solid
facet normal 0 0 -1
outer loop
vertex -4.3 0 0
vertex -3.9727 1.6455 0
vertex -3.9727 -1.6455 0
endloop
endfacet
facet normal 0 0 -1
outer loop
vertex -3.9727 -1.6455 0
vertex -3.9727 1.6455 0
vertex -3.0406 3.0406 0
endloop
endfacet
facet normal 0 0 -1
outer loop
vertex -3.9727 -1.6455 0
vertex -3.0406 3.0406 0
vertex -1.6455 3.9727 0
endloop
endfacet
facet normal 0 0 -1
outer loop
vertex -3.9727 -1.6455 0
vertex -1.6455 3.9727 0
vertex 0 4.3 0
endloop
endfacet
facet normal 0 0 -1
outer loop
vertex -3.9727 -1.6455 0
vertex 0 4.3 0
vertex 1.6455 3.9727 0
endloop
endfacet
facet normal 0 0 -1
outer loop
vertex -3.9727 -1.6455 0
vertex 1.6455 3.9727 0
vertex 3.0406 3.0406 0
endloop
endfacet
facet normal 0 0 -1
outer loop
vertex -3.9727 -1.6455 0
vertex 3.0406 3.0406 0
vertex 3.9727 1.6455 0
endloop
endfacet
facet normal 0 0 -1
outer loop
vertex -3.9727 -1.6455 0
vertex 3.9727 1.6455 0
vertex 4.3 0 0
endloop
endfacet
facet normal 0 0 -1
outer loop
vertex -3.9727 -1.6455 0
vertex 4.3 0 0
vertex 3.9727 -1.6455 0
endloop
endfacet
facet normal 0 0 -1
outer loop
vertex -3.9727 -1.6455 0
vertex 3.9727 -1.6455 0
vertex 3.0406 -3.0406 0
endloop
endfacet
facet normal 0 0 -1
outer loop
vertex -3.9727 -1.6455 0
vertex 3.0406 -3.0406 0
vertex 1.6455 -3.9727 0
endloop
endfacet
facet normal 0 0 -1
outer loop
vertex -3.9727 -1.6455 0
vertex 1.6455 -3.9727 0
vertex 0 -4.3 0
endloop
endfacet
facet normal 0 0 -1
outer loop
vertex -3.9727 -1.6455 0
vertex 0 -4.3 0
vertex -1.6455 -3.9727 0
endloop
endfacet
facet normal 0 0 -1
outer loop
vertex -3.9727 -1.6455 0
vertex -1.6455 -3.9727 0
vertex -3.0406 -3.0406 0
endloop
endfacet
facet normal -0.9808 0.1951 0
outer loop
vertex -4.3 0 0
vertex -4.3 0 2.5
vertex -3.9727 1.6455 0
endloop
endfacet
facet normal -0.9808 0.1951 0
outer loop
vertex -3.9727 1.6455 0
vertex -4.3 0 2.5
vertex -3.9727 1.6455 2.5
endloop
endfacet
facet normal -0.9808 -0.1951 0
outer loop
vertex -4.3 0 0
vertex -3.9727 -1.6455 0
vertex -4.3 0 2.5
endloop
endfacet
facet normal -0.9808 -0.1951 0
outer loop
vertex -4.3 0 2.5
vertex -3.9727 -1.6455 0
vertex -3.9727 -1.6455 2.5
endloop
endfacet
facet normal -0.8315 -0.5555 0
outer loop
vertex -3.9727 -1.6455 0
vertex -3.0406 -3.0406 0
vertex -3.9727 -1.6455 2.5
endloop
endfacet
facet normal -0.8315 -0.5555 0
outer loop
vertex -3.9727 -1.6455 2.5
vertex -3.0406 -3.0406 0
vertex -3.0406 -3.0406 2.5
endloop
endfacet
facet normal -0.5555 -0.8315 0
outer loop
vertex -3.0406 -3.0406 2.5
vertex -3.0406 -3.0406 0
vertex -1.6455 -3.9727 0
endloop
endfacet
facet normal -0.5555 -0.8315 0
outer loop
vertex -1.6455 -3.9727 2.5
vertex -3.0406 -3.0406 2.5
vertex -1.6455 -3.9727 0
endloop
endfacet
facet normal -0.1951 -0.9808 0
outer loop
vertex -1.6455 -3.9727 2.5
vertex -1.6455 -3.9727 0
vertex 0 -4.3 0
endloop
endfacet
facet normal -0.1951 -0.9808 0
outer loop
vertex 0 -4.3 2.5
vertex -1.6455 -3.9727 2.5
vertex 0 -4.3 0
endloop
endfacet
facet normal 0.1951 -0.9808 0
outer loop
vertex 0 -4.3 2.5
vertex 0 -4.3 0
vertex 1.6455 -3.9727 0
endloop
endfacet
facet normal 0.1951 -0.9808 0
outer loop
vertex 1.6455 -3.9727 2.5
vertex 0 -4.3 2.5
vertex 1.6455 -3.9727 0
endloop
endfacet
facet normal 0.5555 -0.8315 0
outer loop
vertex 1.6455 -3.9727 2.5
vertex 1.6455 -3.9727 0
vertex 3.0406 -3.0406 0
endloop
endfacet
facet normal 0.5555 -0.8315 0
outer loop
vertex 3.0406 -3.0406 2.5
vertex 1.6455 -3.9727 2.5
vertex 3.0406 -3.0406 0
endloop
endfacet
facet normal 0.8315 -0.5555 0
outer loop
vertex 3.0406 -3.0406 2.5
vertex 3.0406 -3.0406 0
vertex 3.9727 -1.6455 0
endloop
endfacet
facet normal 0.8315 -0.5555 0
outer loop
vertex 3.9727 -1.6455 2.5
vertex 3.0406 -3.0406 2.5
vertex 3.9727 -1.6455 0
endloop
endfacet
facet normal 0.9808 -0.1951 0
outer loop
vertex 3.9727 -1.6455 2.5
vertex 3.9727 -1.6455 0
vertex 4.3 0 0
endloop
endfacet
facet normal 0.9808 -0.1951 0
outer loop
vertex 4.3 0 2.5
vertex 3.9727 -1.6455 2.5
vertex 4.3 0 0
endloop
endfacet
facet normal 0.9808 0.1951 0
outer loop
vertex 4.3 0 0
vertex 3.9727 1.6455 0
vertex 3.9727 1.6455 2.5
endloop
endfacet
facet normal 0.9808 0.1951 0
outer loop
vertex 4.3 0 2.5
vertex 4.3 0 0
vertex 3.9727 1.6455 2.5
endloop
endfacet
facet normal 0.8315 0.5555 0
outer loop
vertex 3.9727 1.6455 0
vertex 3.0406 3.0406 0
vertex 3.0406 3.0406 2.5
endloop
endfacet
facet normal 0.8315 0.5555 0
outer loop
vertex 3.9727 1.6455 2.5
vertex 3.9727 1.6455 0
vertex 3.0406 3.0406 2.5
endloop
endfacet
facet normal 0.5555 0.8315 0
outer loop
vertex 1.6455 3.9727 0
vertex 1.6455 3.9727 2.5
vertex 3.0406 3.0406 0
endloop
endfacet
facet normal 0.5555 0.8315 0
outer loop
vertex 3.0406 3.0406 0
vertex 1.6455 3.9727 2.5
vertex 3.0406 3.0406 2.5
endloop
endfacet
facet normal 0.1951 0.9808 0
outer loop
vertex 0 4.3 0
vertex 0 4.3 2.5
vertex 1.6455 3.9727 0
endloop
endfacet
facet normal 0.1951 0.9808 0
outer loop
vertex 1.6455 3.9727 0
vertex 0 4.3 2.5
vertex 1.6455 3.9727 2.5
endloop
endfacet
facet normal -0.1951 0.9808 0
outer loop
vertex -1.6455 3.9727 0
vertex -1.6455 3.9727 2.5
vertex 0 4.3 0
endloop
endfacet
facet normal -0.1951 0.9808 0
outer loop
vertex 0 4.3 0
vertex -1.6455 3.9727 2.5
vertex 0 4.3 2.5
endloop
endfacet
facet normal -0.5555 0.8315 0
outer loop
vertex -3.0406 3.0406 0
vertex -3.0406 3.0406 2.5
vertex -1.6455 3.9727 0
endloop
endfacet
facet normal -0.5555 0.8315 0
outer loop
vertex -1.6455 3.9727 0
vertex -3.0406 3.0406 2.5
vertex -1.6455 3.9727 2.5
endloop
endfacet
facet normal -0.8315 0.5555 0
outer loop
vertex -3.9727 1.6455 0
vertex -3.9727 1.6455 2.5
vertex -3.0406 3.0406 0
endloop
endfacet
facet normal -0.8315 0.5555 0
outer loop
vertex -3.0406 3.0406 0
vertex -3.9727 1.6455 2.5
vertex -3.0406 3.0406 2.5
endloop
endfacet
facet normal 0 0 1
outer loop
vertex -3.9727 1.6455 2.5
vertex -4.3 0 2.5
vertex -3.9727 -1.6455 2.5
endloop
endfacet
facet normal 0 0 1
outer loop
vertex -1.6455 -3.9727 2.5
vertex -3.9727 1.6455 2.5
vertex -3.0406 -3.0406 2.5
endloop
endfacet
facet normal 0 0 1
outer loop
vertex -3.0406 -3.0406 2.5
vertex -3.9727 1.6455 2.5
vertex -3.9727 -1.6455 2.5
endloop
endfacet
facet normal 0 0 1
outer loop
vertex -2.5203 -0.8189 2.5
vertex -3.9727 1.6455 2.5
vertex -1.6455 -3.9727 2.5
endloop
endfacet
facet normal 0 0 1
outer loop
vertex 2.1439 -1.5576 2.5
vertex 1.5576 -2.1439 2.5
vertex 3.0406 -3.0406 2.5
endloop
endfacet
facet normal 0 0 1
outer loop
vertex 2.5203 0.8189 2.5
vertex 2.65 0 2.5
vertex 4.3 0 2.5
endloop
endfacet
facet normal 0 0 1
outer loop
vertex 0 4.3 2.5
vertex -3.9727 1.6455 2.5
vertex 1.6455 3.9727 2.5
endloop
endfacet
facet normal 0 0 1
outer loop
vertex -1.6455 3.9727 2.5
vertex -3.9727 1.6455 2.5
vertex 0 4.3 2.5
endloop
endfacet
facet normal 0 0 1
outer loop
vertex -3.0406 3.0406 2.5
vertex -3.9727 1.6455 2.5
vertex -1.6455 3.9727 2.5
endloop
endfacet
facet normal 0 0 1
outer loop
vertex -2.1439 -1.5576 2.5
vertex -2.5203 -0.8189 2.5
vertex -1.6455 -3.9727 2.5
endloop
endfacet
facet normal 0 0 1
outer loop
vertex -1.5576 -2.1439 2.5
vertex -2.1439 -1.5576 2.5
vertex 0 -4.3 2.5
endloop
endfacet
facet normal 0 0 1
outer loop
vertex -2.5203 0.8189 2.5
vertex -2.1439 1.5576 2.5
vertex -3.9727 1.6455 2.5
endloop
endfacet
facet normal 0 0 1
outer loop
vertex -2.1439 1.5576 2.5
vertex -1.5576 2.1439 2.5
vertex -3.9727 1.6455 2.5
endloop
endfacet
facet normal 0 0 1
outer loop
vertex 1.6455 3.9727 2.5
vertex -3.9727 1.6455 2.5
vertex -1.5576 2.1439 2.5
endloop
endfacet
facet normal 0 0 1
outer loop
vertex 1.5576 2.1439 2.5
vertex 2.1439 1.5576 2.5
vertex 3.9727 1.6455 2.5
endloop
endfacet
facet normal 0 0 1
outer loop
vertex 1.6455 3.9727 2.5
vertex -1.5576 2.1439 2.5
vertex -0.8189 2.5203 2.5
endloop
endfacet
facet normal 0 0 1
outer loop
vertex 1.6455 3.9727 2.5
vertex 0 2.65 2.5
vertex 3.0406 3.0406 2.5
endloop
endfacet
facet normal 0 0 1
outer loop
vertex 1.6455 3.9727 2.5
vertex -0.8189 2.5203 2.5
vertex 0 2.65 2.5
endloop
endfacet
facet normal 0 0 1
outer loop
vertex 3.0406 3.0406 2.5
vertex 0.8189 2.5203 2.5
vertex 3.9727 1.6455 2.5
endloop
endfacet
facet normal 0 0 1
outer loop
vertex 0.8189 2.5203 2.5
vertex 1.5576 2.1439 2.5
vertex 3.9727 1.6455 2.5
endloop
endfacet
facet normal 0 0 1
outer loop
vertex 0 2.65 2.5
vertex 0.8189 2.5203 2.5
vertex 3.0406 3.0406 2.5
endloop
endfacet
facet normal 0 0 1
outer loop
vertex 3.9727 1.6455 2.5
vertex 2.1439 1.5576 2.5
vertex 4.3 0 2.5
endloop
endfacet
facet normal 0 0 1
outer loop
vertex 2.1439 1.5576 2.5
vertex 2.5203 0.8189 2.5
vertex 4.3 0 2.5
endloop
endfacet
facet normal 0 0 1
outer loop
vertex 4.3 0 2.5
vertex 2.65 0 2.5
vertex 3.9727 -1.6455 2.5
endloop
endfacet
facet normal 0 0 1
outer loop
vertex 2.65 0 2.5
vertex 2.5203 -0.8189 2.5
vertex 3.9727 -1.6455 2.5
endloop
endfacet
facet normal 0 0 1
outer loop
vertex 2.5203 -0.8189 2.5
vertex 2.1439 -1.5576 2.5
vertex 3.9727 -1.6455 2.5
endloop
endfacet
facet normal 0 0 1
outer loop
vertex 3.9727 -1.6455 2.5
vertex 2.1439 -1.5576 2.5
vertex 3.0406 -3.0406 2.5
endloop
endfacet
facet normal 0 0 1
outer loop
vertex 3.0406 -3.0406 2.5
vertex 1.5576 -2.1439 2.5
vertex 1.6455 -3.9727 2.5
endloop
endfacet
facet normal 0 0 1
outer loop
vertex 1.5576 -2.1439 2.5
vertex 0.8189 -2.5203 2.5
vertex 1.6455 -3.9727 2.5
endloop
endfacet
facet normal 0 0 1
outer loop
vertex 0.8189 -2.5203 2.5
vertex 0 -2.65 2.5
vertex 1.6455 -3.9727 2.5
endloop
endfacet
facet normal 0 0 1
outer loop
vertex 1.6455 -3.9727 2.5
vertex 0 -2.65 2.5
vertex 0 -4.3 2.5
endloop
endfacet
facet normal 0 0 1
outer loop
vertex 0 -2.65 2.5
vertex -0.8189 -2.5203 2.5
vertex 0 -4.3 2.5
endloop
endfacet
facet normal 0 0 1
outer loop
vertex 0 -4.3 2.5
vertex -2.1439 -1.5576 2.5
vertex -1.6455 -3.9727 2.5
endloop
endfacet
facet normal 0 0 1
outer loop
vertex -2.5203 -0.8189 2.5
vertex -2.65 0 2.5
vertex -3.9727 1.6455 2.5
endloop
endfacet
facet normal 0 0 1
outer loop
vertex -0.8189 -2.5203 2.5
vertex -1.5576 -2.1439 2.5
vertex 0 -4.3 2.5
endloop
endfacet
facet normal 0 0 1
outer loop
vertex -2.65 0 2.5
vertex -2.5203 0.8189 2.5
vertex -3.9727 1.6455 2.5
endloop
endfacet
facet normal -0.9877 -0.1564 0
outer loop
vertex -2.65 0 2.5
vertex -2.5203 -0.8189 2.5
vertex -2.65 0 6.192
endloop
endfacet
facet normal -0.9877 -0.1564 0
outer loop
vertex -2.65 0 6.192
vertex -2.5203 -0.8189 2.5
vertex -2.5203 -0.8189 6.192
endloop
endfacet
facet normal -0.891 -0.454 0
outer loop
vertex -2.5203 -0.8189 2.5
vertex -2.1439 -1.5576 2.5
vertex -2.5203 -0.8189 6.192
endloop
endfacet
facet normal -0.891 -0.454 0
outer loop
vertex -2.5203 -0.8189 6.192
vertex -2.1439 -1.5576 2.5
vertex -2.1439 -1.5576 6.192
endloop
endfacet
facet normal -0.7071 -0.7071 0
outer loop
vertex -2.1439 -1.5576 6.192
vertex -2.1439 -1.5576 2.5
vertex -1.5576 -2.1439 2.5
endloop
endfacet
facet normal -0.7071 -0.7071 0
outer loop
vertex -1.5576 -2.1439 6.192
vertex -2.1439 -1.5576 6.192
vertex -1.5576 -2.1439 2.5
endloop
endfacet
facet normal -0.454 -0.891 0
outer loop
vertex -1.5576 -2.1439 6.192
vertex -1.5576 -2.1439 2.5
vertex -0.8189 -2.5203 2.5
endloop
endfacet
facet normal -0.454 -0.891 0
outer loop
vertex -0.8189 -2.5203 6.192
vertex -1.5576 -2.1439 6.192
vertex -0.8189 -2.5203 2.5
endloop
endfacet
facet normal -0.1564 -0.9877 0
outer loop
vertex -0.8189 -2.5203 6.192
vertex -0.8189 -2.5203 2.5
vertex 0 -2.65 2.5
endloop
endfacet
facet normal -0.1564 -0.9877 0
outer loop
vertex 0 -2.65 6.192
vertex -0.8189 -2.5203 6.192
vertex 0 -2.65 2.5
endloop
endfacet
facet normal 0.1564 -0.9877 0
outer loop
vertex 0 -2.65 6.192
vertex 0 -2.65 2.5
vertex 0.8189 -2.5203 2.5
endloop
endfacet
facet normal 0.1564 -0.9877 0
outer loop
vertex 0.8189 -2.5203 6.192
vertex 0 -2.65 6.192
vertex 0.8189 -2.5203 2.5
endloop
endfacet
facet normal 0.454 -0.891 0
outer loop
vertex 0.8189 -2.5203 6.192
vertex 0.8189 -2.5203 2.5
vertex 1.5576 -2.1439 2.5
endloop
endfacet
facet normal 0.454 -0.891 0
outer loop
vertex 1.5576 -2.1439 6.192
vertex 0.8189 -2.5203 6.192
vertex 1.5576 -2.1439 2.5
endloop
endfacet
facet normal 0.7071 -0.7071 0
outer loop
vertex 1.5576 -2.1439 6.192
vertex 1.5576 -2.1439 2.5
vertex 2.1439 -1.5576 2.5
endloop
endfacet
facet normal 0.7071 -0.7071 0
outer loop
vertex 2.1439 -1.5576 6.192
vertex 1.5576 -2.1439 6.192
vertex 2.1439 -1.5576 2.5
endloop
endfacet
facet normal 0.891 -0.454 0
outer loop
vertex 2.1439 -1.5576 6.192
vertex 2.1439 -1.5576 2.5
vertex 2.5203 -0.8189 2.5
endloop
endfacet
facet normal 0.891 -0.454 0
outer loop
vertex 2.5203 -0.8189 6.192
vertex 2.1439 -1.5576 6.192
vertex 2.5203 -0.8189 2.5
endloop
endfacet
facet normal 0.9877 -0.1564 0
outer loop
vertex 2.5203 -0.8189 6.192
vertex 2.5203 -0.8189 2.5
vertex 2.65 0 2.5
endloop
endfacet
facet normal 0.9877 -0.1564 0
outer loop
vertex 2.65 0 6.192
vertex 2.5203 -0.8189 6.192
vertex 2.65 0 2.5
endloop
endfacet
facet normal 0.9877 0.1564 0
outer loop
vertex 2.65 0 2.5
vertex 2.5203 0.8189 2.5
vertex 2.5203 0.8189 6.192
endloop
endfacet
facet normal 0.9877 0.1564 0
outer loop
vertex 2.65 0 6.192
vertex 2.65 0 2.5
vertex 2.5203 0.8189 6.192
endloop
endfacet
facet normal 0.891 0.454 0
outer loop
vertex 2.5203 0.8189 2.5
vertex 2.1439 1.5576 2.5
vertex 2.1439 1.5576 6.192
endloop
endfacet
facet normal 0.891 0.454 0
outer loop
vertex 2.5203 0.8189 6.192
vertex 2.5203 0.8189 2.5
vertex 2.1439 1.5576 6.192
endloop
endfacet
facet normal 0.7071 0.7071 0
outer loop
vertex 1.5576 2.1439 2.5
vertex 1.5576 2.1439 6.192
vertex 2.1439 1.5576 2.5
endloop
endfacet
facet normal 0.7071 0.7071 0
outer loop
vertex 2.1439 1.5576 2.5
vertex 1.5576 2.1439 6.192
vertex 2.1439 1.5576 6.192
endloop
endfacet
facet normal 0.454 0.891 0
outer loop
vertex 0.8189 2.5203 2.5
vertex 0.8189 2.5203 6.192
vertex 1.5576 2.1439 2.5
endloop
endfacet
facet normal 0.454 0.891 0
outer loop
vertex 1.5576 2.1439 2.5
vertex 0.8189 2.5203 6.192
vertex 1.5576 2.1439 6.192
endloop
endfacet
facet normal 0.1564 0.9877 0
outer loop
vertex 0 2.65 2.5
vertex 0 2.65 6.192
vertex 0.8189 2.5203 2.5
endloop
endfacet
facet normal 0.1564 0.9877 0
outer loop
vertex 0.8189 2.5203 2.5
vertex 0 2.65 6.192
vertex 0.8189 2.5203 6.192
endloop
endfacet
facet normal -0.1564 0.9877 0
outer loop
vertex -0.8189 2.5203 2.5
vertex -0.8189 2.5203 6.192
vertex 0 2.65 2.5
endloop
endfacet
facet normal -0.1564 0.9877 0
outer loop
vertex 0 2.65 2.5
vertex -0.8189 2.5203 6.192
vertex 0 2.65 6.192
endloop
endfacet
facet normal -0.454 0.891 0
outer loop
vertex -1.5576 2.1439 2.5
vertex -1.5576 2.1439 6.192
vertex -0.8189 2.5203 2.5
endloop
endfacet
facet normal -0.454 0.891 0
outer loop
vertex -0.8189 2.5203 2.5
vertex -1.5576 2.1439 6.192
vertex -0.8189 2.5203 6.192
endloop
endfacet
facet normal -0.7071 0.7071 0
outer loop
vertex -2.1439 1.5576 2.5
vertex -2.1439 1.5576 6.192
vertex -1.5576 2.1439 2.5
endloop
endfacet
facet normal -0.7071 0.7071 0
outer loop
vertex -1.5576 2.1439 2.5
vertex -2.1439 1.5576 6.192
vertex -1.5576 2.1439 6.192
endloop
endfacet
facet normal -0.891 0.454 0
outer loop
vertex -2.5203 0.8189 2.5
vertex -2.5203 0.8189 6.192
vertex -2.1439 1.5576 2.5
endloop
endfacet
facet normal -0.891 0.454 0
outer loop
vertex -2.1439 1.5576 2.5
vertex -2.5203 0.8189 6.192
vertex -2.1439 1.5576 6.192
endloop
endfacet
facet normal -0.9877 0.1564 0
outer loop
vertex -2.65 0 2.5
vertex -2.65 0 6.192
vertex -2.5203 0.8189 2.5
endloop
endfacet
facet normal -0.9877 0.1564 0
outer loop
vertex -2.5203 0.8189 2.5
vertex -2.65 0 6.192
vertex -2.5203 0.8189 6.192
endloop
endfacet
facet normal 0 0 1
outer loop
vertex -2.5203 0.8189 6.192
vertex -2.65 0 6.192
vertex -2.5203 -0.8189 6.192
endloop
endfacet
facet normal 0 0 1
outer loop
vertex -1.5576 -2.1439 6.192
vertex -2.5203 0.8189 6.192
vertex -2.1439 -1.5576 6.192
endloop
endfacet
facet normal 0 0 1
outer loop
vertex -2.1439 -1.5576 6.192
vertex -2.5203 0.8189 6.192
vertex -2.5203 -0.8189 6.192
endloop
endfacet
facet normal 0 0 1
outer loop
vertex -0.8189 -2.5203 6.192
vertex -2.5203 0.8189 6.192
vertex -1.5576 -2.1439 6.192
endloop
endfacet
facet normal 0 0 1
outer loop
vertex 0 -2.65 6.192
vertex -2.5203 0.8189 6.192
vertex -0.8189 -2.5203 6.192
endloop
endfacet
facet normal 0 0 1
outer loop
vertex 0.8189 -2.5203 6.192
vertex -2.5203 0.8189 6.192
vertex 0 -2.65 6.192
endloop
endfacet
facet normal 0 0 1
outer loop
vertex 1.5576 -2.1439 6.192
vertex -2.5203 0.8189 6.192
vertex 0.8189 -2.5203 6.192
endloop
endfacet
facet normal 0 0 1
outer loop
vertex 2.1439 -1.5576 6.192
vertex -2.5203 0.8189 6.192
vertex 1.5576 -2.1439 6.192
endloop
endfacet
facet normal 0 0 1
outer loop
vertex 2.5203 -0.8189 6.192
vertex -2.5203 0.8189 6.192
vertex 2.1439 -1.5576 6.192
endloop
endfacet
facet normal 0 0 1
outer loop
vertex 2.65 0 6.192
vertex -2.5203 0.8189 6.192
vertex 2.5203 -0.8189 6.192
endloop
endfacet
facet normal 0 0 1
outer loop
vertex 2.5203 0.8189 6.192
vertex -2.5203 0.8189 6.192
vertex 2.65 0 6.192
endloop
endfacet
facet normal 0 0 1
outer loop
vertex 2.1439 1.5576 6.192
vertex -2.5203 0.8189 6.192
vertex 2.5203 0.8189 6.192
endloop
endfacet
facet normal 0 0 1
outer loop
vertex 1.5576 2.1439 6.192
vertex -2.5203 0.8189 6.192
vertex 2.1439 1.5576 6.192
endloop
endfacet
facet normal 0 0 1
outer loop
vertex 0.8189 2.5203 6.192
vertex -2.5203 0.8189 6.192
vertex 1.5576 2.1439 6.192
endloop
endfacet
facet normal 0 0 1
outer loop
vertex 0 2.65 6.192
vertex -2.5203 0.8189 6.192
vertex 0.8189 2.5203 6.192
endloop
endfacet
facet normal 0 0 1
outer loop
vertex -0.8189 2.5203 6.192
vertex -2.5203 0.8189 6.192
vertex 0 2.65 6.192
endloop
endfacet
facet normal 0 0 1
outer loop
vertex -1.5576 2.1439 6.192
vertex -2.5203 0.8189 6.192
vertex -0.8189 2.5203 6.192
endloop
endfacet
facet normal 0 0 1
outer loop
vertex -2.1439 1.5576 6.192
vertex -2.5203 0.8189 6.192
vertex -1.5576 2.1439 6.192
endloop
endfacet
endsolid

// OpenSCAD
servo_button();

module servo_button(){
	cylinder(r=4.3,h=2.5,$fn=16);
	cylinder(r=2.65,h=6.192,$fn=20);
}
